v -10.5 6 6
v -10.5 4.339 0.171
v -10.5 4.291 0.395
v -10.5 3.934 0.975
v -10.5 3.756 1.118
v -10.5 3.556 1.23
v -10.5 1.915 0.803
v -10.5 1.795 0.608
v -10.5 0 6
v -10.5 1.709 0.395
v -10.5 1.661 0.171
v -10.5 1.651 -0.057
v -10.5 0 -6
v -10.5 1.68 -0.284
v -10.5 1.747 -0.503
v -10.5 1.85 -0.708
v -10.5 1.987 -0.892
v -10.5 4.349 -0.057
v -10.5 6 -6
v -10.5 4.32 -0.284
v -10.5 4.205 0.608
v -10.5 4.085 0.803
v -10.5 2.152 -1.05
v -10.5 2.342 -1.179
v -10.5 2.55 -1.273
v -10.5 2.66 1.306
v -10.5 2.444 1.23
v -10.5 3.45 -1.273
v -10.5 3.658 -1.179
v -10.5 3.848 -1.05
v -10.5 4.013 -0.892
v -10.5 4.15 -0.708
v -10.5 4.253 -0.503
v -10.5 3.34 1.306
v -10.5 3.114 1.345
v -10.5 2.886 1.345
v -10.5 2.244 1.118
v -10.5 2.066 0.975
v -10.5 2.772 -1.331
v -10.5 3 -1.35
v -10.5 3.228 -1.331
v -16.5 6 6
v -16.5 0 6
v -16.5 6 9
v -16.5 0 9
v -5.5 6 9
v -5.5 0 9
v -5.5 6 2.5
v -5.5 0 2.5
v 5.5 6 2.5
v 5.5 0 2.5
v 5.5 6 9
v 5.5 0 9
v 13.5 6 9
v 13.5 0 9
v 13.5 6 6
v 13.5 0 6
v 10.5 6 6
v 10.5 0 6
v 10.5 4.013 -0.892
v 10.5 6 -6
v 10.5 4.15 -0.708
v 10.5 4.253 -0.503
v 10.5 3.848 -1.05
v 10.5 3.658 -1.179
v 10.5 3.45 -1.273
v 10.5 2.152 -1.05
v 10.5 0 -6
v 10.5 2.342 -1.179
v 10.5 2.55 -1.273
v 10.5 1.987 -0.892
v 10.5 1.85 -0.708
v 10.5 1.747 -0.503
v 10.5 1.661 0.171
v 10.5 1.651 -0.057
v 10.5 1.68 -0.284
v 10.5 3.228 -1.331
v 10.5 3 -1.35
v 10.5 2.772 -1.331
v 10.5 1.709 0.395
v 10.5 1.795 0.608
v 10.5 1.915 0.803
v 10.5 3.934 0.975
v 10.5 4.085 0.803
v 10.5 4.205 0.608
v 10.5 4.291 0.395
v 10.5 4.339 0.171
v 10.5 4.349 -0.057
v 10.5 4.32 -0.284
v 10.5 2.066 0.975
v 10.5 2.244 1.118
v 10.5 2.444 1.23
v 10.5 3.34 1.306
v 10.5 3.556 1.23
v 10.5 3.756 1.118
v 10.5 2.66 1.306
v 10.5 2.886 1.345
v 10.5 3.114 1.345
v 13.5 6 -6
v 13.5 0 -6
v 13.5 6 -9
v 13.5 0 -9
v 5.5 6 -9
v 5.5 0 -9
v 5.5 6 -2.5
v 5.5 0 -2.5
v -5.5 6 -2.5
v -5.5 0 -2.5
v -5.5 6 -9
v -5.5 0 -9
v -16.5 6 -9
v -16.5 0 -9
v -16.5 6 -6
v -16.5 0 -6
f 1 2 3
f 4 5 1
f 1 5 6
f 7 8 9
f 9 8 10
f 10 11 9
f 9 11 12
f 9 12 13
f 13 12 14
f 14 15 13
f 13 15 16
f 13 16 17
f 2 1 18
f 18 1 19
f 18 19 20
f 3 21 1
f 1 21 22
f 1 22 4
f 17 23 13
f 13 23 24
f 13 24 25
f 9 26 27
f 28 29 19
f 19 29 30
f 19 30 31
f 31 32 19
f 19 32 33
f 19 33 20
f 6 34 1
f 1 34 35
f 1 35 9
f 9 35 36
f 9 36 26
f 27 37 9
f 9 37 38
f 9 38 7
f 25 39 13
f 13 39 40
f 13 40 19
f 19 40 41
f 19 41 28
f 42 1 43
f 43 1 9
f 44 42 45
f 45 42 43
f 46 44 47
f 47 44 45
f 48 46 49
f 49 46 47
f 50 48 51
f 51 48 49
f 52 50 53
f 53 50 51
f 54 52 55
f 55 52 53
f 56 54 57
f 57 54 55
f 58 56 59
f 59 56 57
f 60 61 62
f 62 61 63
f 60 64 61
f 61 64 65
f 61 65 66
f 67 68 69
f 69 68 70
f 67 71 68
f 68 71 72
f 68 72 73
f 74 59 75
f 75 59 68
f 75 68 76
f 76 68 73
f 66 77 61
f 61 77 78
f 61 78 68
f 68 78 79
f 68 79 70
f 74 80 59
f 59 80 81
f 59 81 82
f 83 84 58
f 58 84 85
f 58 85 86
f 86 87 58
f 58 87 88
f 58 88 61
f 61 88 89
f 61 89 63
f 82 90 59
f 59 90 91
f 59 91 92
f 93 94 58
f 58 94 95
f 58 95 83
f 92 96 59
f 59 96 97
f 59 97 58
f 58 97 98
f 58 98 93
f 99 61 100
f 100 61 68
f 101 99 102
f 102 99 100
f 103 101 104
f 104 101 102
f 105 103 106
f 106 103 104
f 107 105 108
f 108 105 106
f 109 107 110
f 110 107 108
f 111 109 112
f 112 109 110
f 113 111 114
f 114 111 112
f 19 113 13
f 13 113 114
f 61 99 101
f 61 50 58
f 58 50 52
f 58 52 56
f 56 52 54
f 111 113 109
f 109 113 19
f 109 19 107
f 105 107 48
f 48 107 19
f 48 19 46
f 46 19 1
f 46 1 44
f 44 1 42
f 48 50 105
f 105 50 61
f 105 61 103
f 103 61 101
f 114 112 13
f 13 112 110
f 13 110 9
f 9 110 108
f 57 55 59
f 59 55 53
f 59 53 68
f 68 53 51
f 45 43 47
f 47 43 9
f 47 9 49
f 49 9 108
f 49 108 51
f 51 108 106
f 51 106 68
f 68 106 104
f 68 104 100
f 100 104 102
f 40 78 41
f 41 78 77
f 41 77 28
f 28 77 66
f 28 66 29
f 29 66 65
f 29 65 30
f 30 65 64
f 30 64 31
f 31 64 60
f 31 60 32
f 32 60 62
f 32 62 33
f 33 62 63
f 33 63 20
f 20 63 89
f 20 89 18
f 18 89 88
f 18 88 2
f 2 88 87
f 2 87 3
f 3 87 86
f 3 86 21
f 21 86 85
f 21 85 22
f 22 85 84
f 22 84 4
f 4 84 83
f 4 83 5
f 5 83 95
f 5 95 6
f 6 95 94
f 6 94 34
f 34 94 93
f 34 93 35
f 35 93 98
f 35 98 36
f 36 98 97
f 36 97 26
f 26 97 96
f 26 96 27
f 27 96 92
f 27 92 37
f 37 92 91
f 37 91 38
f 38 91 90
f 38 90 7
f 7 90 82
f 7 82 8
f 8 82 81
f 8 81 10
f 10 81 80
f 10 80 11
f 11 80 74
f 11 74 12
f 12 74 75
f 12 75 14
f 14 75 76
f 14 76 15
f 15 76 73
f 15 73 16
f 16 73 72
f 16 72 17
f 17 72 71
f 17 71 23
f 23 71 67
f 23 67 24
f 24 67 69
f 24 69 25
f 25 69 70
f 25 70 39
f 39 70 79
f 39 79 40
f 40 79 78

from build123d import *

# Parameters (mm, degrees)
BOSS_EXTRUDE1_DEPTH = 6
SKETCH2_R           = 1.35
CUT_EXTRUDE1_DEPTH  = 30.086079144


with BuildPart() as part:
    # Sketch1 → Boss-Extrude1 (new body)
    with BuildSketch(Plane(origin=(0, 0, 0), x_dir=(1, 0, 0), z_dir=(0, 1, 0))):
        Polygon((-5.5, 2.5), (-5.5, 9), (-16.5, 9), (-16.5, 6), (-10.5, 6), (-10.5, 1.847803827), (-10.5, 0), (-10.5, -6), (-16.5, -6), (-16.5, -9), (-5.5, -9), (-5.5, -2.5), (5.5, -2.5), (5.5, -9), (10.5, -9), (13.5, -9), (13.5, -6), (10.5, -6), (10.5, 0), (10.5, 6), (13.5, 6), (13.5, 9), (10.5, 9), (5.5, 9), (5.5, 2.5), align=None)
    extrude(amount=BOSS_EXTRUDE1_DEPTH)

    # Sketch2 → Cut-Extrude1 (cut, through all)
    with BuildSketch(Plane(origin=(10.5, 0, 0), x_dir=(0, 0, -1), z_dir=(1, 0, 0))):
        with Locations((0, 3)):
            Circle(SKETCH2_R)
    extrude(amount=-CUT_EXTRUDE1_DEPTH, mode=Mode.SUBTRACT)


solid = part.part
